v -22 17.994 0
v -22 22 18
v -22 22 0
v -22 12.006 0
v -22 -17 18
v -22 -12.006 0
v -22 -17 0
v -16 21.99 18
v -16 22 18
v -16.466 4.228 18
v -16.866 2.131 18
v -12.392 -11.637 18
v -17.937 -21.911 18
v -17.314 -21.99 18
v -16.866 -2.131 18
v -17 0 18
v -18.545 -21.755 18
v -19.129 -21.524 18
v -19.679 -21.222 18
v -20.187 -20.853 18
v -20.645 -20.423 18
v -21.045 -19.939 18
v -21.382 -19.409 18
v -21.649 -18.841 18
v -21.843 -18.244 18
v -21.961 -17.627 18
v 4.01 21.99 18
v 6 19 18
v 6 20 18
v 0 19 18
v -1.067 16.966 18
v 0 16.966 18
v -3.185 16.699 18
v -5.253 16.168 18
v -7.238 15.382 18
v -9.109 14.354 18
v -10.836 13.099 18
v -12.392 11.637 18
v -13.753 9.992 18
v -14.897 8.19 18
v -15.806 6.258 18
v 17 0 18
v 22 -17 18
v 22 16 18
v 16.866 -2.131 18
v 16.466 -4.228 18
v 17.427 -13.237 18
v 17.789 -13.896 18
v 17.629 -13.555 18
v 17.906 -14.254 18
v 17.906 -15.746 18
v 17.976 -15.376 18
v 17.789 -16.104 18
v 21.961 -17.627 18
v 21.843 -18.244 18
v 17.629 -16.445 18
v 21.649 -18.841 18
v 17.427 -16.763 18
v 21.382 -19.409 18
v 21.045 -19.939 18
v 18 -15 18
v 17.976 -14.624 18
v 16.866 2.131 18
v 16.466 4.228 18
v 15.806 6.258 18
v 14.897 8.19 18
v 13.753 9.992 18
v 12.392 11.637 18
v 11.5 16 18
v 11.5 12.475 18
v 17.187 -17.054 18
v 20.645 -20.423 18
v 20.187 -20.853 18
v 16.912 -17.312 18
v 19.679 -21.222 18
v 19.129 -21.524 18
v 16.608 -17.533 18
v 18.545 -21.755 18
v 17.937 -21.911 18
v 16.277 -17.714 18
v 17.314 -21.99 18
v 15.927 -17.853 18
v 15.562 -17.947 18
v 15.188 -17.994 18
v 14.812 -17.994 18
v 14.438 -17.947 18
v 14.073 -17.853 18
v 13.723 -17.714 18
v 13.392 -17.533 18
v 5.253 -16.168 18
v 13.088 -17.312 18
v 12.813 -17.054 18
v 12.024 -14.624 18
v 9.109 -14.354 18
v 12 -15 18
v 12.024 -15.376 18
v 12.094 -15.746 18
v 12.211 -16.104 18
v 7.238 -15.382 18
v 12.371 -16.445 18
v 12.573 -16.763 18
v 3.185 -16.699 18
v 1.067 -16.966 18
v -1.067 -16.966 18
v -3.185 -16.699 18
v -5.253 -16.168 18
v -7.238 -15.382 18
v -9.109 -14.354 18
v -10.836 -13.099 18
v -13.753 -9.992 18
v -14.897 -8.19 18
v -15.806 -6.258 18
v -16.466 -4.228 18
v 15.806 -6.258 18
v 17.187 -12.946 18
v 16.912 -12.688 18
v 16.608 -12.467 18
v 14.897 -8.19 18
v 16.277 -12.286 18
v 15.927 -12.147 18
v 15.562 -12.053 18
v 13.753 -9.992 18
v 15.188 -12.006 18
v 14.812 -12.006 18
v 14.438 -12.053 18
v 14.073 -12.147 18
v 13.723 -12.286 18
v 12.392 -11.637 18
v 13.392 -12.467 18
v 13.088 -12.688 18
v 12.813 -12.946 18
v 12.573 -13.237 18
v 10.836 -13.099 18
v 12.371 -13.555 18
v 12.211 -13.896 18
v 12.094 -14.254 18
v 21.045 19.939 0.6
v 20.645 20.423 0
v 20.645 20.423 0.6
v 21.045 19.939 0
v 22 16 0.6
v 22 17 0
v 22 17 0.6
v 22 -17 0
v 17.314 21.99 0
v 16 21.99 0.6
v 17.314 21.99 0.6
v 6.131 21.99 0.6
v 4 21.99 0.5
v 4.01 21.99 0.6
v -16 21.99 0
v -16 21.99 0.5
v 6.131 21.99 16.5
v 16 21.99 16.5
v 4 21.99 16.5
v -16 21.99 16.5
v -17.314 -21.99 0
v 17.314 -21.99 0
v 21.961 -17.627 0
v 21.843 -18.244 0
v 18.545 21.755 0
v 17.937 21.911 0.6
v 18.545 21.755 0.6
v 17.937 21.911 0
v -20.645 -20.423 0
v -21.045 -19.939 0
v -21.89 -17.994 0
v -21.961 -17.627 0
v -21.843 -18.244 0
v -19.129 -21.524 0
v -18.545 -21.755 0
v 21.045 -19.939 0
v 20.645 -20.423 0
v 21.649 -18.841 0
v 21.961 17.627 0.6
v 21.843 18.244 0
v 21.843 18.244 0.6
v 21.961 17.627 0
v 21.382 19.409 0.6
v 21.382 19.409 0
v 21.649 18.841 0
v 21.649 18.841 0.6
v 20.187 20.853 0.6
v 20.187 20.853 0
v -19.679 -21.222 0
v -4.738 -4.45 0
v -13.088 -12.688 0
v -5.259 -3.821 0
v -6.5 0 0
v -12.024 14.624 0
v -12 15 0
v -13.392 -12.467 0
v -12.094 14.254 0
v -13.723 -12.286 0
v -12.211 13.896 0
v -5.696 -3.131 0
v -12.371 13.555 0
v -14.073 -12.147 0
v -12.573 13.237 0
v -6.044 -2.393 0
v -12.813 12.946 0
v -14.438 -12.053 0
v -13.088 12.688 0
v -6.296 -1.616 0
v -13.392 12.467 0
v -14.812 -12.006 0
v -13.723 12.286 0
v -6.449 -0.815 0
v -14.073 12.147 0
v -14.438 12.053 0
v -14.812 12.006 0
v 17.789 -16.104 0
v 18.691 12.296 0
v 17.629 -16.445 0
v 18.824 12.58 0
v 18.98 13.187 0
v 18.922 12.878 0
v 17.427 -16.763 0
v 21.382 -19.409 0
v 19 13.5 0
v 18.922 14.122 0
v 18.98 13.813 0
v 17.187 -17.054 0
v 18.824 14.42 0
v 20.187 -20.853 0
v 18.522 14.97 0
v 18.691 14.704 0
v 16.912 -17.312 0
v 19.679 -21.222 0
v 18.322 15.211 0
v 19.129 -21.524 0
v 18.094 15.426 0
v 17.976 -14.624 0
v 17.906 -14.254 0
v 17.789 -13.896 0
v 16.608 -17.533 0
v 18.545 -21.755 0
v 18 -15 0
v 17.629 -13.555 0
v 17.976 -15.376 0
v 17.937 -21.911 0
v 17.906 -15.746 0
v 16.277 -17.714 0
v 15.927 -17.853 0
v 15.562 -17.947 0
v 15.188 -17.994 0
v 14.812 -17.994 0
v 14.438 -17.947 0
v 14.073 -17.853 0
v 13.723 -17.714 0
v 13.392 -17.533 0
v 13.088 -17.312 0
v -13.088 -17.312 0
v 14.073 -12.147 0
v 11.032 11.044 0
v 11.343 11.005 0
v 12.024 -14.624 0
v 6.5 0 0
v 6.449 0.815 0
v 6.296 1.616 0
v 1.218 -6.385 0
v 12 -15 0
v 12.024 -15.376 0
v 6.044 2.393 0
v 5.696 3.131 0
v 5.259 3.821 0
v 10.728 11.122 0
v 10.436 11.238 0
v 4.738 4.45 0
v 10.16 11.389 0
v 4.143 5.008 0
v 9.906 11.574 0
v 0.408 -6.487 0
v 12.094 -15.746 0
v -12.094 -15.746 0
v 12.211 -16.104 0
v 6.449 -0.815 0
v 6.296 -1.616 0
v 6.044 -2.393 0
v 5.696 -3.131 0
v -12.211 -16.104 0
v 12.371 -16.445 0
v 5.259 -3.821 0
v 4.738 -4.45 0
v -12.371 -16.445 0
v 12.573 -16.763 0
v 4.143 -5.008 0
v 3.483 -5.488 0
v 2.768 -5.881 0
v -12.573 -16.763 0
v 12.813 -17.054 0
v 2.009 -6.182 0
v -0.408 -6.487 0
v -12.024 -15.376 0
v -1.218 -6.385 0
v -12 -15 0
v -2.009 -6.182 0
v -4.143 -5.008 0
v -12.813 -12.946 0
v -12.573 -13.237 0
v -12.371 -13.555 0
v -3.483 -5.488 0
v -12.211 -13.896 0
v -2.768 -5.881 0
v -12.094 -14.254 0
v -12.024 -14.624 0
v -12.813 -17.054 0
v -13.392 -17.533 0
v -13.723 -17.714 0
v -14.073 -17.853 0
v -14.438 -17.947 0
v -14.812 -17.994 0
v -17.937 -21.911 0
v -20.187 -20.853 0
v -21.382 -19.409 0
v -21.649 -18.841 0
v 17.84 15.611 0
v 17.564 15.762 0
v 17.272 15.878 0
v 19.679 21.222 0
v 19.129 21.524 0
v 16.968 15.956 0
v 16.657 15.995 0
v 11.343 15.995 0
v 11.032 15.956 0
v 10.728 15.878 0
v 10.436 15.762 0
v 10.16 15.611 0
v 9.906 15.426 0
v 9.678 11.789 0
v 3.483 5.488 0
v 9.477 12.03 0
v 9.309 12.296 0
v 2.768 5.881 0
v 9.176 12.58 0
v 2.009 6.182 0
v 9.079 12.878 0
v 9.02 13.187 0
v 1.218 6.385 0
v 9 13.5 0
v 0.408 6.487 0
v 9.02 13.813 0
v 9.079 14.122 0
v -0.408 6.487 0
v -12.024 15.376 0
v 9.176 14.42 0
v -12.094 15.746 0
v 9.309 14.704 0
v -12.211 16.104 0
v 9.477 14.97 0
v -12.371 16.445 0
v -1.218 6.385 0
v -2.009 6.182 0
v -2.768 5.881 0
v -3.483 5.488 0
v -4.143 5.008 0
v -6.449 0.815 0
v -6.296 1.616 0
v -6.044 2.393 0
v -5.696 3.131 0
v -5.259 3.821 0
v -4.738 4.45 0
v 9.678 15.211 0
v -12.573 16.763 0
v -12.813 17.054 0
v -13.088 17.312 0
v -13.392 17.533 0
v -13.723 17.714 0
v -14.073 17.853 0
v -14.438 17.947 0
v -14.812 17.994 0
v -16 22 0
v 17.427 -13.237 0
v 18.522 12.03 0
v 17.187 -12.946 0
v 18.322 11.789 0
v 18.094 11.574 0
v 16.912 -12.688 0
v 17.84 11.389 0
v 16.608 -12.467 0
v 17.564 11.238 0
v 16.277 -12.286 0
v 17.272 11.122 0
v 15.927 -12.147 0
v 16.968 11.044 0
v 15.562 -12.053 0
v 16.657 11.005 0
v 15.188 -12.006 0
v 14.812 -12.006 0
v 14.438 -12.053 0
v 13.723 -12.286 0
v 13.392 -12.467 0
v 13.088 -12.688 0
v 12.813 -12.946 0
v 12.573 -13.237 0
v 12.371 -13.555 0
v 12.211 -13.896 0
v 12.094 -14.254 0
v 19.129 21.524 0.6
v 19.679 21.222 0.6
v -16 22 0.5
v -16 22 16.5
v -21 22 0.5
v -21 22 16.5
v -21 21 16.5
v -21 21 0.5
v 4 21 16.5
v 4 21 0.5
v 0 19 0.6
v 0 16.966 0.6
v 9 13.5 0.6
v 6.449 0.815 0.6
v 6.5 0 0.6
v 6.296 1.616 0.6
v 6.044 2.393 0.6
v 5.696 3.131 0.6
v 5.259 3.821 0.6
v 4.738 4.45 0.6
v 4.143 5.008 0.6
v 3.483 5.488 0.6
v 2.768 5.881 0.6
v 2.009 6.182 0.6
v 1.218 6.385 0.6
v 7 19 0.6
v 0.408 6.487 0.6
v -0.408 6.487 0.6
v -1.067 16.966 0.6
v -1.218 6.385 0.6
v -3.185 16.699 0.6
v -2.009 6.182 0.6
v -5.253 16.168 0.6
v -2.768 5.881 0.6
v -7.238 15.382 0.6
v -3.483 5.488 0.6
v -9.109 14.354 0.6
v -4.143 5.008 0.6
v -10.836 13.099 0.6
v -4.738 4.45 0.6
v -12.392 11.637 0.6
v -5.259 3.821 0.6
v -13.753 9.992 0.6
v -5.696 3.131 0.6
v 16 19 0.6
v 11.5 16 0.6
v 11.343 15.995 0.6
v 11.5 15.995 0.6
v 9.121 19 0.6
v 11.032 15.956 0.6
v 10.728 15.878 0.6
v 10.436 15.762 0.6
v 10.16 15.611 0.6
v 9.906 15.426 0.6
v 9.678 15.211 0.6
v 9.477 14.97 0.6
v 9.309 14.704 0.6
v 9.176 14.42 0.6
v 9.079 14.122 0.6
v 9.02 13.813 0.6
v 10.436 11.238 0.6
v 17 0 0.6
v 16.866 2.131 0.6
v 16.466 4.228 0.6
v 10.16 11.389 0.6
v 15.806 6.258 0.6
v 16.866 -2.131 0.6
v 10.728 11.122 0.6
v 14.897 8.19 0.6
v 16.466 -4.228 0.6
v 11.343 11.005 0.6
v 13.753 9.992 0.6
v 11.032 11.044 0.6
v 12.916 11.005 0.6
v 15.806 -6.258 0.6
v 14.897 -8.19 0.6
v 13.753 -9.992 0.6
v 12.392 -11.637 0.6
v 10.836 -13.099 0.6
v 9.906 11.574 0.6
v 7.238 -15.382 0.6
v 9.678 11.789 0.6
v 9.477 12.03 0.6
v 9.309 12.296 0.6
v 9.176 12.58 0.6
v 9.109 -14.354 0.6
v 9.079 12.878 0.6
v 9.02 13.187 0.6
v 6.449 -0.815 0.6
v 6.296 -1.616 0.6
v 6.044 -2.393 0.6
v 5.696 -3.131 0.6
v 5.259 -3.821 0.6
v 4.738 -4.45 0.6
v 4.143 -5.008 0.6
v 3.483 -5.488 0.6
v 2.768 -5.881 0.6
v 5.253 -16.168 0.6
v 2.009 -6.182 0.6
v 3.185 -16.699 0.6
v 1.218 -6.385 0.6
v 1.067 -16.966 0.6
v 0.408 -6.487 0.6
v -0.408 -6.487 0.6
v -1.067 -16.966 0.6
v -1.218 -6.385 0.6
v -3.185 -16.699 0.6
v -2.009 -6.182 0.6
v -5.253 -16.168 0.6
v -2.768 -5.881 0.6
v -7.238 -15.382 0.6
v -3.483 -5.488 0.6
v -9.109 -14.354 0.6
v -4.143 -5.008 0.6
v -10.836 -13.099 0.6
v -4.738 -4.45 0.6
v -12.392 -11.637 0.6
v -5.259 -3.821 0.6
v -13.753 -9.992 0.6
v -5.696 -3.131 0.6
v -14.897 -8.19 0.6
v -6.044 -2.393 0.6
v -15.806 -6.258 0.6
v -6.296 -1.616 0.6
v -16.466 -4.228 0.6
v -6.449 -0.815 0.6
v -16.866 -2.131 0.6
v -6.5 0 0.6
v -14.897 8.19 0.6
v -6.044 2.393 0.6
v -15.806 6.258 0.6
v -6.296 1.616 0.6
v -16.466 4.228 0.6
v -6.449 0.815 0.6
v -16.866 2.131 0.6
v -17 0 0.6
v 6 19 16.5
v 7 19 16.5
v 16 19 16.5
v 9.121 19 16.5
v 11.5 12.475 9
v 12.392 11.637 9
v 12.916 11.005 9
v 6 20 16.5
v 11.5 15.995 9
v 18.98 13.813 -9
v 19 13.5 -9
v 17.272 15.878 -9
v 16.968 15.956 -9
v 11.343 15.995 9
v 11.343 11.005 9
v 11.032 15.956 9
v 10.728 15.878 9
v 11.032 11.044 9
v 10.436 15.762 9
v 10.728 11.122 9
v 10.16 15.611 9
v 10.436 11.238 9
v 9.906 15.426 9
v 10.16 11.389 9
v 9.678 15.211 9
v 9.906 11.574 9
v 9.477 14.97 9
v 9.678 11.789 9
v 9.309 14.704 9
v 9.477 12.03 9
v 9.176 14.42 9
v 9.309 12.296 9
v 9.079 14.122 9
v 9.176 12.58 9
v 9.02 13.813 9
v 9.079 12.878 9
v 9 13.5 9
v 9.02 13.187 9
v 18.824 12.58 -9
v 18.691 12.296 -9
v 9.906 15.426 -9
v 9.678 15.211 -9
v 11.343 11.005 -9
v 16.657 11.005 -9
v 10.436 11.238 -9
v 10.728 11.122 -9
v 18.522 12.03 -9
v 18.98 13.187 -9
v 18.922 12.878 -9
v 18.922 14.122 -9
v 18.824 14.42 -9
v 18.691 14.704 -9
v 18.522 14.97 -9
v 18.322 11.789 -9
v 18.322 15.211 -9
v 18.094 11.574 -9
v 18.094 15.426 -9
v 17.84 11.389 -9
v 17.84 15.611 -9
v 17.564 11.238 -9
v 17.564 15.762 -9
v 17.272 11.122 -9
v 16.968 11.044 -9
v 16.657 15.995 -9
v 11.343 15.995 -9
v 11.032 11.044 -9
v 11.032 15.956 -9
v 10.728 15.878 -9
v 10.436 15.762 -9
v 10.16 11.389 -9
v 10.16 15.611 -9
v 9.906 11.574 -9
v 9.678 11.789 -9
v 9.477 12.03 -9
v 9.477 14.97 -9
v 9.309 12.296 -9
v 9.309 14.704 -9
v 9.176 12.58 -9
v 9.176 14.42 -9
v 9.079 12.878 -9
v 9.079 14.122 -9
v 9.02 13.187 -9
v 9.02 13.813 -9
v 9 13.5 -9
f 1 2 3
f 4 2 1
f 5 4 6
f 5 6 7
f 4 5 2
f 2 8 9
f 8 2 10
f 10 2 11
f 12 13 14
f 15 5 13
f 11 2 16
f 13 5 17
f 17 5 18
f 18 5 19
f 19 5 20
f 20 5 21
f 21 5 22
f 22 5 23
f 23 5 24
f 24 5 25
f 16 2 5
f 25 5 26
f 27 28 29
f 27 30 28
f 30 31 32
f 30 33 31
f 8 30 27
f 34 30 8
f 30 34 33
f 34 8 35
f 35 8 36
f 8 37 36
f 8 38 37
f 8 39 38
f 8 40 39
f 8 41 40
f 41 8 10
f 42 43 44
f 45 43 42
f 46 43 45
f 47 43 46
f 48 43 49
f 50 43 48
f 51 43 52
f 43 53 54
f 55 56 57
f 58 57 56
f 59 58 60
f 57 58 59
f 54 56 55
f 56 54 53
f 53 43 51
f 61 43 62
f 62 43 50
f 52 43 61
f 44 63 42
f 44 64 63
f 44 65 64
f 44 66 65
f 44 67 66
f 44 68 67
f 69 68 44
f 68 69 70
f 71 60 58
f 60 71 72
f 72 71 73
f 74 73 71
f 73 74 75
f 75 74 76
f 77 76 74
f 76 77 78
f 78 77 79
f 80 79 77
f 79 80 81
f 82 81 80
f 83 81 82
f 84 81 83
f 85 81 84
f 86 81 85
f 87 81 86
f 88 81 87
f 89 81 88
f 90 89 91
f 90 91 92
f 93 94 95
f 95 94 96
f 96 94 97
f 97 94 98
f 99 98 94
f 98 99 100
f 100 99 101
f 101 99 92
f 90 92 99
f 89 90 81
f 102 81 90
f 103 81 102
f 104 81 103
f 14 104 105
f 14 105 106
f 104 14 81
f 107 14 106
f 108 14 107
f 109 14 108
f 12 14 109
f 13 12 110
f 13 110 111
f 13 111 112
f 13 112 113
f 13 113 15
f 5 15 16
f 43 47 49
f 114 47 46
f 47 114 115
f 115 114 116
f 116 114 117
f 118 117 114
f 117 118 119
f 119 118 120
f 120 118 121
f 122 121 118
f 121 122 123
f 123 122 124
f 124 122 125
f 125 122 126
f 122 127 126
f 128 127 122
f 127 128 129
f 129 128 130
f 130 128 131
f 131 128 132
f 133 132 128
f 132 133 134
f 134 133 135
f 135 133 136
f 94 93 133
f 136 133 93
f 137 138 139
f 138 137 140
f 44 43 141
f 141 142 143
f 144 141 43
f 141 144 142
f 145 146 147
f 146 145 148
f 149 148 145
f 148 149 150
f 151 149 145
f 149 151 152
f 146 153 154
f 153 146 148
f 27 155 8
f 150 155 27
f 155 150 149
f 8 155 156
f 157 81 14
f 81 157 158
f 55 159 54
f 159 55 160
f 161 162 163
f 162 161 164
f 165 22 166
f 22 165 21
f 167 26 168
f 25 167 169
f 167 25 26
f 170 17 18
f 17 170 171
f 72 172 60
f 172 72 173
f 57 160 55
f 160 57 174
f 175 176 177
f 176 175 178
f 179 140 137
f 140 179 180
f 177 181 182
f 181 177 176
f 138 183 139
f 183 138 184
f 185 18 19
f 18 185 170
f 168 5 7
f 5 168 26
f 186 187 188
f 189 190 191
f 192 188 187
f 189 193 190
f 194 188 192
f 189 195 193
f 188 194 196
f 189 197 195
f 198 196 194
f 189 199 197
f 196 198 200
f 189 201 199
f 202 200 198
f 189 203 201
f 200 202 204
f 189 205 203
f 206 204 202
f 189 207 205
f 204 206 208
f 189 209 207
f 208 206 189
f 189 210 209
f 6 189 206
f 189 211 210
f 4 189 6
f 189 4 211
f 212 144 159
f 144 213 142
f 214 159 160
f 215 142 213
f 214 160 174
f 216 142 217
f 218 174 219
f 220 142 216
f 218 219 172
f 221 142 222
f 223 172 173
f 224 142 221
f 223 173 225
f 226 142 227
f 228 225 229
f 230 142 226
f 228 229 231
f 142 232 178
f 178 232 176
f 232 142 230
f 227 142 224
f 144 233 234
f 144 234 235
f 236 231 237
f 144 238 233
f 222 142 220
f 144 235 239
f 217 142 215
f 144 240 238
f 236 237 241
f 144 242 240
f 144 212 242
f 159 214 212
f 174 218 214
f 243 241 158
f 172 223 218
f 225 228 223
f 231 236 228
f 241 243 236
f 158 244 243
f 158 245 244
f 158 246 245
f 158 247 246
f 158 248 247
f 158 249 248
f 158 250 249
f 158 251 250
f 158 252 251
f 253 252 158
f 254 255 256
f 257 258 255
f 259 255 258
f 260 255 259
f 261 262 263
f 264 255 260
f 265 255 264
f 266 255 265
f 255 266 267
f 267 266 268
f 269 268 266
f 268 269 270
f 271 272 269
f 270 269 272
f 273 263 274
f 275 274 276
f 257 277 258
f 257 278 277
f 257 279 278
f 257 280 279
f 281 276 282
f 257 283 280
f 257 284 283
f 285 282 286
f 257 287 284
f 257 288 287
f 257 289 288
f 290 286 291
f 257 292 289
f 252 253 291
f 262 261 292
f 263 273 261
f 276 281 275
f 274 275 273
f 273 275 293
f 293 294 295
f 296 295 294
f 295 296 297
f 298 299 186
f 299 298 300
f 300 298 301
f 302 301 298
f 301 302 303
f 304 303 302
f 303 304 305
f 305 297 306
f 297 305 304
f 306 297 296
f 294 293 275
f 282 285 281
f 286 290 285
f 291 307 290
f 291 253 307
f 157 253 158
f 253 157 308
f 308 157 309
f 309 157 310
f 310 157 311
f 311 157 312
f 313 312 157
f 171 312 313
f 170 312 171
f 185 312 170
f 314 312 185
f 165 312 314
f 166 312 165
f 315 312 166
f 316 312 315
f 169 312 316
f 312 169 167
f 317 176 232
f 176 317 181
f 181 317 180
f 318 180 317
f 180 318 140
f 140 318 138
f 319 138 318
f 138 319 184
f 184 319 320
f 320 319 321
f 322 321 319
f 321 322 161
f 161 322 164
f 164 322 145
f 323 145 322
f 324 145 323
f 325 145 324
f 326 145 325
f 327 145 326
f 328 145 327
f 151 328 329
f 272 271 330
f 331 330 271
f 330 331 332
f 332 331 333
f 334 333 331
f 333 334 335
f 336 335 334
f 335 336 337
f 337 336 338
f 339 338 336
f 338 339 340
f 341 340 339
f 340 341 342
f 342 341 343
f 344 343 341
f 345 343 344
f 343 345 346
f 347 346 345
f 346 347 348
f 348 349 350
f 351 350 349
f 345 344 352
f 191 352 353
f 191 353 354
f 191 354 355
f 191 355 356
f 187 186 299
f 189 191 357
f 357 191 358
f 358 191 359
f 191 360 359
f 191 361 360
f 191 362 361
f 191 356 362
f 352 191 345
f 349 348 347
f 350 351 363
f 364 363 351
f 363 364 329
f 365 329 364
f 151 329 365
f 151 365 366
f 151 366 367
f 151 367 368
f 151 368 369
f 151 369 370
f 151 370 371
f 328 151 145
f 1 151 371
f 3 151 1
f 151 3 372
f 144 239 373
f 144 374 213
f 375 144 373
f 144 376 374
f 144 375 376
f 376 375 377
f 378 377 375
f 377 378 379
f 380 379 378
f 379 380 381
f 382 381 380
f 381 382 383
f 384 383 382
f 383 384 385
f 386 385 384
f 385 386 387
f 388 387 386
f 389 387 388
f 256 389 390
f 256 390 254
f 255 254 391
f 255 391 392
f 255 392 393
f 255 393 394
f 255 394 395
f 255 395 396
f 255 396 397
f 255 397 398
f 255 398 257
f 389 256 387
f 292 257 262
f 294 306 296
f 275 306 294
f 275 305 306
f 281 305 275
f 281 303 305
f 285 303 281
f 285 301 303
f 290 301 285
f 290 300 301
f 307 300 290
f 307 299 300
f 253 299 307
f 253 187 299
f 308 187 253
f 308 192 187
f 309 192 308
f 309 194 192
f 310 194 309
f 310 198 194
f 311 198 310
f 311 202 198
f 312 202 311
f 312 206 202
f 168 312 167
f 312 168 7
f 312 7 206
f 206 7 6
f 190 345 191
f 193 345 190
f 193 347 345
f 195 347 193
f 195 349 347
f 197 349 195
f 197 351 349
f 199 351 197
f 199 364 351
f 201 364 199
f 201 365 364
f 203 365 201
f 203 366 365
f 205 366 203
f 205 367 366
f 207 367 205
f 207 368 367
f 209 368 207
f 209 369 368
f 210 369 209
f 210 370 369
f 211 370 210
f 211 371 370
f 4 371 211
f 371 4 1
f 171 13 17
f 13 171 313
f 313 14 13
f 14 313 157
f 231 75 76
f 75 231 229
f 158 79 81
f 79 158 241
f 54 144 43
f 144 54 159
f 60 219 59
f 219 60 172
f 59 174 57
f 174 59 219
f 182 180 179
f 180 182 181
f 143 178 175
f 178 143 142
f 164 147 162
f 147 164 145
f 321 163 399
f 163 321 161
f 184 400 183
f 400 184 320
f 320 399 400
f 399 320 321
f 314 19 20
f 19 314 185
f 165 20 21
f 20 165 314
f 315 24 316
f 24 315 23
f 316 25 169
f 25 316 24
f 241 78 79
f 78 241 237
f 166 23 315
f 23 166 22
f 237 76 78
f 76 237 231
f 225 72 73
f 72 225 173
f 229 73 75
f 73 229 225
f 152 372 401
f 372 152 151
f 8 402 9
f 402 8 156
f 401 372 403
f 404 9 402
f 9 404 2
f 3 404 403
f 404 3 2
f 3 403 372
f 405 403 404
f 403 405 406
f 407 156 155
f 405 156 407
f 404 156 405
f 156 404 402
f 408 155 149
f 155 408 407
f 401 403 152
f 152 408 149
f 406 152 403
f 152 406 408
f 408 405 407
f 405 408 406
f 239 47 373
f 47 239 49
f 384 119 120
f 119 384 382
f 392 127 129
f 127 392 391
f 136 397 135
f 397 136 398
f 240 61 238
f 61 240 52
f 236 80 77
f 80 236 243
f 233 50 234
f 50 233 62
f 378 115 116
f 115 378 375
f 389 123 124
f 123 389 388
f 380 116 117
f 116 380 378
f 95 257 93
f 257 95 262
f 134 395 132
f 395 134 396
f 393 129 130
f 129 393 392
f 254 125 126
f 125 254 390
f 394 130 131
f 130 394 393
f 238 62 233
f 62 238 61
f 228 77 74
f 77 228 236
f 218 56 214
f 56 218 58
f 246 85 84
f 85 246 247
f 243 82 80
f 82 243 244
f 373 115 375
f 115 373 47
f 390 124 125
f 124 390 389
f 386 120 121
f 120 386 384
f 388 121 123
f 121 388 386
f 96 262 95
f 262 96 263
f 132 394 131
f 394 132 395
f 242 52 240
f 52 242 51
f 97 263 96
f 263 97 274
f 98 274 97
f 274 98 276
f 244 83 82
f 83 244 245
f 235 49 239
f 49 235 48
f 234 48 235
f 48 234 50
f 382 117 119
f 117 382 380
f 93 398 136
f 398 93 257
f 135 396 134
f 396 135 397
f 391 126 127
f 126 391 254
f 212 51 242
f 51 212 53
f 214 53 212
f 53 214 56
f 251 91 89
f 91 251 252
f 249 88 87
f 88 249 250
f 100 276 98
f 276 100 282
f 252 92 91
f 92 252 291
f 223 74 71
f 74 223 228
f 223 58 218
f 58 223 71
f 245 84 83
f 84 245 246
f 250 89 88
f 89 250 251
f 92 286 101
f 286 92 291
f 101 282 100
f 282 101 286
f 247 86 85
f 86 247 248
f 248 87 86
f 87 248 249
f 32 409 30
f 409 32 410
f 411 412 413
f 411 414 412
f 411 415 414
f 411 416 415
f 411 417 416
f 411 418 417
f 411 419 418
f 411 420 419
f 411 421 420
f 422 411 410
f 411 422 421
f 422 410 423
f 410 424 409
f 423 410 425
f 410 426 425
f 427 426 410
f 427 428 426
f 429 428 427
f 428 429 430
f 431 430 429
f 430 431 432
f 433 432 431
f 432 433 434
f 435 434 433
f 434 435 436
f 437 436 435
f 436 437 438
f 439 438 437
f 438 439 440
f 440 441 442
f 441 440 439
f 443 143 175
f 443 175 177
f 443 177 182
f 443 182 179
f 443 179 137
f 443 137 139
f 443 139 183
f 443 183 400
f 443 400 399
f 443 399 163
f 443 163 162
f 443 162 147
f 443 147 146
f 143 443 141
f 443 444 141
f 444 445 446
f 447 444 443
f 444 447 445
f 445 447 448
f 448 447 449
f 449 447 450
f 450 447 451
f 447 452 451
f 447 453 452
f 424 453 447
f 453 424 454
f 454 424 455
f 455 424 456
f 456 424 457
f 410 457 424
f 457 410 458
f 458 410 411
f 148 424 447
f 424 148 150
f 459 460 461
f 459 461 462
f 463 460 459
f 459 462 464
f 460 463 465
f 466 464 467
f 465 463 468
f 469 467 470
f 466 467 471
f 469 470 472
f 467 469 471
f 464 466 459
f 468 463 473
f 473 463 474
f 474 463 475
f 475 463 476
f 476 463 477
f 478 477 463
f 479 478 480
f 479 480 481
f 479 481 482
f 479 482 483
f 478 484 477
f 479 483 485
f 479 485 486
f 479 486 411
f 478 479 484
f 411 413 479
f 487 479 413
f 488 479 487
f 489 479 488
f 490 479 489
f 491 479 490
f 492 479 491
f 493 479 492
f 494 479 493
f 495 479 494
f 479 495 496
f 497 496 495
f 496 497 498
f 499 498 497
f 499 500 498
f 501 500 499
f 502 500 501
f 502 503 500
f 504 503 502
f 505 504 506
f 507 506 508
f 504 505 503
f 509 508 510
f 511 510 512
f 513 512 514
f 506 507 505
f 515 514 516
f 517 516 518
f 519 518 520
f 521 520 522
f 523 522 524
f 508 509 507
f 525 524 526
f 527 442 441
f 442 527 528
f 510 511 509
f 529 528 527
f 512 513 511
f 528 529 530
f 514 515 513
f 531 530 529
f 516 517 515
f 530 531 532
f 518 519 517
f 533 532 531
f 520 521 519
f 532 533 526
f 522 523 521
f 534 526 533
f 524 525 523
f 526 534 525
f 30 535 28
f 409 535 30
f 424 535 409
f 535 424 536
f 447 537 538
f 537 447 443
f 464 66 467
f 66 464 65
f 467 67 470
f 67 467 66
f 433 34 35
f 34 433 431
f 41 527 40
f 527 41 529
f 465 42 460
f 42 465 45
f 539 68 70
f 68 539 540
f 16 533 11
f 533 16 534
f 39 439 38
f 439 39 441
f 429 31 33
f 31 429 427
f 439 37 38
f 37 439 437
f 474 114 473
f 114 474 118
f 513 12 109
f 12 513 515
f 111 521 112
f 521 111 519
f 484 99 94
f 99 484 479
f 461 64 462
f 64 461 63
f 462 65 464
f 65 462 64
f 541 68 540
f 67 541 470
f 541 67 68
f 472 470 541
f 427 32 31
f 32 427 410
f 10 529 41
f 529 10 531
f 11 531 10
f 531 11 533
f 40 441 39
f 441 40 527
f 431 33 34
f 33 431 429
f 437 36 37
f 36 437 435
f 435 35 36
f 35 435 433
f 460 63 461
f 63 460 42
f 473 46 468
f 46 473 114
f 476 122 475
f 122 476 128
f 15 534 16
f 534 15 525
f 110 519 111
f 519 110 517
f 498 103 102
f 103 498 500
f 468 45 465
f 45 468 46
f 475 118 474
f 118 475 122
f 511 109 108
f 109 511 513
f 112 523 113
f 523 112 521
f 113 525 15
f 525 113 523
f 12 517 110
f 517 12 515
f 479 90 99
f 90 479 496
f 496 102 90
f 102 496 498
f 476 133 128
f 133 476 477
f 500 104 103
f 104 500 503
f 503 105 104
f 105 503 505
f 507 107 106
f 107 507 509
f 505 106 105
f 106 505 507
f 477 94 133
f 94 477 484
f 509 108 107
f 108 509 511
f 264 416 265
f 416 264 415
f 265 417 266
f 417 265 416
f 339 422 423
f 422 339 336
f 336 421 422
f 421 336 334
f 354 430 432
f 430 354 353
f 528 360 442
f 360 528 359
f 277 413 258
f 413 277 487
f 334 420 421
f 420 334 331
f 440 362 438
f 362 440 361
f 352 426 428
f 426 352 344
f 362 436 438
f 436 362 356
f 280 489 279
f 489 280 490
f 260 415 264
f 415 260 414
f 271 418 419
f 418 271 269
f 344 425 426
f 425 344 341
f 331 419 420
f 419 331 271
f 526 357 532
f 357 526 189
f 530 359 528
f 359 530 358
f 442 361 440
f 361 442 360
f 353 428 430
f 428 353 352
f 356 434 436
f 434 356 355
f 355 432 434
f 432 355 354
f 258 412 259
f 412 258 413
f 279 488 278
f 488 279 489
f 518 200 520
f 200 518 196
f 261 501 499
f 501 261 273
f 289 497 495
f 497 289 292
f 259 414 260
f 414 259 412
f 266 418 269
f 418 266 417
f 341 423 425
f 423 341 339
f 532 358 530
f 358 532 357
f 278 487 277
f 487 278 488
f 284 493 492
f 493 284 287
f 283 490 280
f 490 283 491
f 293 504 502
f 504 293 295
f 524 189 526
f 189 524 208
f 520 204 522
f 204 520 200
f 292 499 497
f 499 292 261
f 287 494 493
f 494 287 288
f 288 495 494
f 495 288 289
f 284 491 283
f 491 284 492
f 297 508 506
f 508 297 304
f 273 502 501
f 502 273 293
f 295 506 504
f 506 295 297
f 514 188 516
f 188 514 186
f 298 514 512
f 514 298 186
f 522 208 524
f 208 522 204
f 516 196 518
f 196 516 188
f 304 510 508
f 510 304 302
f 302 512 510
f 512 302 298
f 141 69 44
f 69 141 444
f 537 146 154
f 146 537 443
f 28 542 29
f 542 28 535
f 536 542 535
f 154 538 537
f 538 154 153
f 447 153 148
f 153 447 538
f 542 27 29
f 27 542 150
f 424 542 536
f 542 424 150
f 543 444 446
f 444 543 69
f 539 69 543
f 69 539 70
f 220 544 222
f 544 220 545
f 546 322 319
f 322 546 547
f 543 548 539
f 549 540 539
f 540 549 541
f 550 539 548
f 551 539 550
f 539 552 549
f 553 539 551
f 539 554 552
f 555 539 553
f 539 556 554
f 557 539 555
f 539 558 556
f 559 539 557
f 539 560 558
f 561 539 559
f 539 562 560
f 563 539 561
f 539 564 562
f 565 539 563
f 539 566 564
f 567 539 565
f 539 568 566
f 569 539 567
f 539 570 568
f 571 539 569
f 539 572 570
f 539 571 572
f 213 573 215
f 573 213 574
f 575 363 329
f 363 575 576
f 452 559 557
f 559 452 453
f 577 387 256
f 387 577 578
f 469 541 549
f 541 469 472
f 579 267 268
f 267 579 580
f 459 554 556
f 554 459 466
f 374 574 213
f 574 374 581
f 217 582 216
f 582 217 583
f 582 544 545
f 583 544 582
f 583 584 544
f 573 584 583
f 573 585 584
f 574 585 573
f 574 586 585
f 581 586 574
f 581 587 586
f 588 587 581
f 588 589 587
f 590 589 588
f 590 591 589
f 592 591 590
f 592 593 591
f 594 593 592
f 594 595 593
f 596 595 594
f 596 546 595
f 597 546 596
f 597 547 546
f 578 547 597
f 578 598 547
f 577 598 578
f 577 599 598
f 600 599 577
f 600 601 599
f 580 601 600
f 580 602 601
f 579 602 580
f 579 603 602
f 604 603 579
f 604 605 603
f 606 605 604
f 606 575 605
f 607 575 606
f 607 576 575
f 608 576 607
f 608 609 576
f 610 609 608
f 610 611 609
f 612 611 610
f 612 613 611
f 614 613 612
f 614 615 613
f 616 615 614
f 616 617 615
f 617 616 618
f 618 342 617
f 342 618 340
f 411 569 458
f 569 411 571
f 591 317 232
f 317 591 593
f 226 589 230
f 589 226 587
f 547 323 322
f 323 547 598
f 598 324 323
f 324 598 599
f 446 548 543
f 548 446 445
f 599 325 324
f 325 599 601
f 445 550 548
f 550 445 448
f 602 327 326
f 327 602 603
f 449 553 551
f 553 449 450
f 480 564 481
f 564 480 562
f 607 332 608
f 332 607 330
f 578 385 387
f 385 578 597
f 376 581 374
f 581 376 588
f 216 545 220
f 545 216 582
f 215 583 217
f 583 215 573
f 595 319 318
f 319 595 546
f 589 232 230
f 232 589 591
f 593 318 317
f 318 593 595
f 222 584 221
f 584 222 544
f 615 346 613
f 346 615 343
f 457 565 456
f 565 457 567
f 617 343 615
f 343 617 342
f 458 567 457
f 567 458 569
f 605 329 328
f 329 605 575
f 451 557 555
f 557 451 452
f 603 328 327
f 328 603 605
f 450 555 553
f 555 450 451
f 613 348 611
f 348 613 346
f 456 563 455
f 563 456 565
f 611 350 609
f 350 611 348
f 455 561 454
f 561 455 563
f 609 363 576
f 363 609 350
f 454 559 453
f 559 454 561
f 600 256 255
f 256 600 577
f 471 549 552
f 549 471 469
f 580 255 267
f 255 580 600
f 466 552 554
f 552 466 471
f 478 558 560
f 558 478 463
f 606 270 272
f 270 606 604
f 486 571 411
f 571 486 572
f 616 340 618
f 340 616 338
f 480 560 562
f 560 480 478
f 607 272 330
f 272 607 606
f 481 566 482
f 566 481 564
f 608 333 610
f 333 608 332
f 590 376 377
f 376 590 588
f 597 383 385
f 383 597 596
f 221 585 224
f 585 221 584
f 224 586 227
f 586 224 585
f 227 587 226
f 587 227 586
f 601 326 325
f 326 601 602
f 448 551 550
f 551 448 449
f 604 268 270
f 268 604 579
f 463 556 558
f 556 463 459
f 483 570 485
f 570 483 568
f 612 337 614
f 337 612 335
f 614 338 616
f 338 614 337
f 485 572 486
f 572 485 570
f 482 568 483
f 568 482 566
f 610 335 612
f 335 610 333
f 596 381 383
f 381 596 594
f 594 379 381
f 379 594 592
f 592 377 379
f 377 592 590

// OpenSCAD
$fn = 50;


union() {
	difference() {
		union() {
			hull() {
				translate(v = [-17.0000000000, 17.0000000000, 0]) {
					cylinder(h = 18, r = 5);
				}
				translate(v = [17.0000000000, 17.0000000000, 0]) {
					cylinder(h = 18, r = 5);
				}
				translate(v = [-17.0000000000, -17.0000000000, 0]) {
					cylinder(h = 18, r = 5);
				}
				translate(v = [17.0000000000, -17.0000000000, 0]) {
					cylinder(h = 18, r = 5);
				}
			}
			translate(v = [-22.0000000000, 16.0000000000, 0]) {
				cube(size = [6, 6, 18]);
			}
		}
		union() {
			translate(v = [-22.5000000000, -15.0000000000, -250.0000000000]) {
				rotate(a = [0, 0, 0]) {
					difference() {
						union() {
							hull() {
								translate(v = [7.5000000000, 0, 0]) {
									cylinder(h = 250, r = 3.0000000000, r1 = 3.0000000000, r2 = 3.0000000000);
								}
								translate(v = [-7.5000000000, 0, 0]) {
									cylinder(h = 250, r = 3.0000000000, r1 = 3.0000000000, r2 = 3.0000000000);
								}
							}
						}
						union();
					}
				}
			}
			translate(v = [-22.5000000000, 15.0000000000, -250.0000000000]) {
				rotate(a = [0, 0, 0]) {
					difference() {
						union() {
							hull() {
								translate(v = [7.5000000000, 0, 0]) {
									cylinder(h = 250, r = 3.0000000000, r1 = 3.0000000000, r2 = 3.0000000000);
								}
								translate(v = [-7.5000000000, 0, 0]) {
									cylinder(h = 250, r = 3.0000000000, r1 = 3.0000000000, r2 = 3.0000000000);
								}
							}
						}
						union();
					}
				}
			}
			translate(v = [-21.0000000000, 21.0000000000, 0.5000000000]) {
				cube(size = [25, 1, 16]);
			}
			translate(v = [15.0000000000, -15.0000000000, 0]) {
				cylinder(h = 100, r = 3.0000000000);
			}
			translate(v = [0.0000000000, 11.0000000000, 0.6000000000]) {
				cube(size = [11, 8, 20.4000000000]);
			}
			translate(v = [0, 0, 0.6000000000]) {
				cylinder(h = 20.4000000000, r = 17.0000000000);
			}
			translate(v = [0, 0, -9.0000000000]) {
				cylinder(h = 18, r = 6.5000000000);
			}
			translate(v = [0.0000000000, 16.0000000000, 0.6000000000]) {
				cube(size = [22.0000000000, 3, 20.4000000000]);
			}
			translate(v = [16.0000000000, 16.0000000000, 0.6000000000]) {
				cube(size = [6, 6, 20.4000000000]);
			}
			translate(v = [6.0000000000, 16.0000000000, 16.5000000000]) {
				cube(size = [16, 6, 1.5000000000]);
			}
			translate(v = [3.2500000000, 22.7500000000, 0.6000000000]) {
				rotate(a = [0, 0, -45]) {
					cube(size = [7.5000000000, 1.5000000000, 20.4000000000]);
				}
			}
			translate(v = [2.5000000000, 11.0000000000, 0.6000000000]) {
				cube(size = [9.0000000000, 5, 17.4000000000]);
			}
		}
	}
	union() {
		translate(v = [14, 13.5000000000, -9.0000000000]) {
			rotate(a = [0, 0, 0]) {
				difference() {
					union() {
						#hull() {
							#translate(v = [2.5000000000, 0, 0]) {
								cylinder(h = 18, r = 2.5000000000, r1 = 2.5000000000, r2 = 2.5000000000);
							}
							#translate(v = [-2.5000000000, 0, 0]) {
								cylinder(h = 18, r = 2.5000000000, r1 = 2.5000000000, r2 = 2.5000000000);
							}
						}
					}
					union();
				}
			}
		}
	}
}
